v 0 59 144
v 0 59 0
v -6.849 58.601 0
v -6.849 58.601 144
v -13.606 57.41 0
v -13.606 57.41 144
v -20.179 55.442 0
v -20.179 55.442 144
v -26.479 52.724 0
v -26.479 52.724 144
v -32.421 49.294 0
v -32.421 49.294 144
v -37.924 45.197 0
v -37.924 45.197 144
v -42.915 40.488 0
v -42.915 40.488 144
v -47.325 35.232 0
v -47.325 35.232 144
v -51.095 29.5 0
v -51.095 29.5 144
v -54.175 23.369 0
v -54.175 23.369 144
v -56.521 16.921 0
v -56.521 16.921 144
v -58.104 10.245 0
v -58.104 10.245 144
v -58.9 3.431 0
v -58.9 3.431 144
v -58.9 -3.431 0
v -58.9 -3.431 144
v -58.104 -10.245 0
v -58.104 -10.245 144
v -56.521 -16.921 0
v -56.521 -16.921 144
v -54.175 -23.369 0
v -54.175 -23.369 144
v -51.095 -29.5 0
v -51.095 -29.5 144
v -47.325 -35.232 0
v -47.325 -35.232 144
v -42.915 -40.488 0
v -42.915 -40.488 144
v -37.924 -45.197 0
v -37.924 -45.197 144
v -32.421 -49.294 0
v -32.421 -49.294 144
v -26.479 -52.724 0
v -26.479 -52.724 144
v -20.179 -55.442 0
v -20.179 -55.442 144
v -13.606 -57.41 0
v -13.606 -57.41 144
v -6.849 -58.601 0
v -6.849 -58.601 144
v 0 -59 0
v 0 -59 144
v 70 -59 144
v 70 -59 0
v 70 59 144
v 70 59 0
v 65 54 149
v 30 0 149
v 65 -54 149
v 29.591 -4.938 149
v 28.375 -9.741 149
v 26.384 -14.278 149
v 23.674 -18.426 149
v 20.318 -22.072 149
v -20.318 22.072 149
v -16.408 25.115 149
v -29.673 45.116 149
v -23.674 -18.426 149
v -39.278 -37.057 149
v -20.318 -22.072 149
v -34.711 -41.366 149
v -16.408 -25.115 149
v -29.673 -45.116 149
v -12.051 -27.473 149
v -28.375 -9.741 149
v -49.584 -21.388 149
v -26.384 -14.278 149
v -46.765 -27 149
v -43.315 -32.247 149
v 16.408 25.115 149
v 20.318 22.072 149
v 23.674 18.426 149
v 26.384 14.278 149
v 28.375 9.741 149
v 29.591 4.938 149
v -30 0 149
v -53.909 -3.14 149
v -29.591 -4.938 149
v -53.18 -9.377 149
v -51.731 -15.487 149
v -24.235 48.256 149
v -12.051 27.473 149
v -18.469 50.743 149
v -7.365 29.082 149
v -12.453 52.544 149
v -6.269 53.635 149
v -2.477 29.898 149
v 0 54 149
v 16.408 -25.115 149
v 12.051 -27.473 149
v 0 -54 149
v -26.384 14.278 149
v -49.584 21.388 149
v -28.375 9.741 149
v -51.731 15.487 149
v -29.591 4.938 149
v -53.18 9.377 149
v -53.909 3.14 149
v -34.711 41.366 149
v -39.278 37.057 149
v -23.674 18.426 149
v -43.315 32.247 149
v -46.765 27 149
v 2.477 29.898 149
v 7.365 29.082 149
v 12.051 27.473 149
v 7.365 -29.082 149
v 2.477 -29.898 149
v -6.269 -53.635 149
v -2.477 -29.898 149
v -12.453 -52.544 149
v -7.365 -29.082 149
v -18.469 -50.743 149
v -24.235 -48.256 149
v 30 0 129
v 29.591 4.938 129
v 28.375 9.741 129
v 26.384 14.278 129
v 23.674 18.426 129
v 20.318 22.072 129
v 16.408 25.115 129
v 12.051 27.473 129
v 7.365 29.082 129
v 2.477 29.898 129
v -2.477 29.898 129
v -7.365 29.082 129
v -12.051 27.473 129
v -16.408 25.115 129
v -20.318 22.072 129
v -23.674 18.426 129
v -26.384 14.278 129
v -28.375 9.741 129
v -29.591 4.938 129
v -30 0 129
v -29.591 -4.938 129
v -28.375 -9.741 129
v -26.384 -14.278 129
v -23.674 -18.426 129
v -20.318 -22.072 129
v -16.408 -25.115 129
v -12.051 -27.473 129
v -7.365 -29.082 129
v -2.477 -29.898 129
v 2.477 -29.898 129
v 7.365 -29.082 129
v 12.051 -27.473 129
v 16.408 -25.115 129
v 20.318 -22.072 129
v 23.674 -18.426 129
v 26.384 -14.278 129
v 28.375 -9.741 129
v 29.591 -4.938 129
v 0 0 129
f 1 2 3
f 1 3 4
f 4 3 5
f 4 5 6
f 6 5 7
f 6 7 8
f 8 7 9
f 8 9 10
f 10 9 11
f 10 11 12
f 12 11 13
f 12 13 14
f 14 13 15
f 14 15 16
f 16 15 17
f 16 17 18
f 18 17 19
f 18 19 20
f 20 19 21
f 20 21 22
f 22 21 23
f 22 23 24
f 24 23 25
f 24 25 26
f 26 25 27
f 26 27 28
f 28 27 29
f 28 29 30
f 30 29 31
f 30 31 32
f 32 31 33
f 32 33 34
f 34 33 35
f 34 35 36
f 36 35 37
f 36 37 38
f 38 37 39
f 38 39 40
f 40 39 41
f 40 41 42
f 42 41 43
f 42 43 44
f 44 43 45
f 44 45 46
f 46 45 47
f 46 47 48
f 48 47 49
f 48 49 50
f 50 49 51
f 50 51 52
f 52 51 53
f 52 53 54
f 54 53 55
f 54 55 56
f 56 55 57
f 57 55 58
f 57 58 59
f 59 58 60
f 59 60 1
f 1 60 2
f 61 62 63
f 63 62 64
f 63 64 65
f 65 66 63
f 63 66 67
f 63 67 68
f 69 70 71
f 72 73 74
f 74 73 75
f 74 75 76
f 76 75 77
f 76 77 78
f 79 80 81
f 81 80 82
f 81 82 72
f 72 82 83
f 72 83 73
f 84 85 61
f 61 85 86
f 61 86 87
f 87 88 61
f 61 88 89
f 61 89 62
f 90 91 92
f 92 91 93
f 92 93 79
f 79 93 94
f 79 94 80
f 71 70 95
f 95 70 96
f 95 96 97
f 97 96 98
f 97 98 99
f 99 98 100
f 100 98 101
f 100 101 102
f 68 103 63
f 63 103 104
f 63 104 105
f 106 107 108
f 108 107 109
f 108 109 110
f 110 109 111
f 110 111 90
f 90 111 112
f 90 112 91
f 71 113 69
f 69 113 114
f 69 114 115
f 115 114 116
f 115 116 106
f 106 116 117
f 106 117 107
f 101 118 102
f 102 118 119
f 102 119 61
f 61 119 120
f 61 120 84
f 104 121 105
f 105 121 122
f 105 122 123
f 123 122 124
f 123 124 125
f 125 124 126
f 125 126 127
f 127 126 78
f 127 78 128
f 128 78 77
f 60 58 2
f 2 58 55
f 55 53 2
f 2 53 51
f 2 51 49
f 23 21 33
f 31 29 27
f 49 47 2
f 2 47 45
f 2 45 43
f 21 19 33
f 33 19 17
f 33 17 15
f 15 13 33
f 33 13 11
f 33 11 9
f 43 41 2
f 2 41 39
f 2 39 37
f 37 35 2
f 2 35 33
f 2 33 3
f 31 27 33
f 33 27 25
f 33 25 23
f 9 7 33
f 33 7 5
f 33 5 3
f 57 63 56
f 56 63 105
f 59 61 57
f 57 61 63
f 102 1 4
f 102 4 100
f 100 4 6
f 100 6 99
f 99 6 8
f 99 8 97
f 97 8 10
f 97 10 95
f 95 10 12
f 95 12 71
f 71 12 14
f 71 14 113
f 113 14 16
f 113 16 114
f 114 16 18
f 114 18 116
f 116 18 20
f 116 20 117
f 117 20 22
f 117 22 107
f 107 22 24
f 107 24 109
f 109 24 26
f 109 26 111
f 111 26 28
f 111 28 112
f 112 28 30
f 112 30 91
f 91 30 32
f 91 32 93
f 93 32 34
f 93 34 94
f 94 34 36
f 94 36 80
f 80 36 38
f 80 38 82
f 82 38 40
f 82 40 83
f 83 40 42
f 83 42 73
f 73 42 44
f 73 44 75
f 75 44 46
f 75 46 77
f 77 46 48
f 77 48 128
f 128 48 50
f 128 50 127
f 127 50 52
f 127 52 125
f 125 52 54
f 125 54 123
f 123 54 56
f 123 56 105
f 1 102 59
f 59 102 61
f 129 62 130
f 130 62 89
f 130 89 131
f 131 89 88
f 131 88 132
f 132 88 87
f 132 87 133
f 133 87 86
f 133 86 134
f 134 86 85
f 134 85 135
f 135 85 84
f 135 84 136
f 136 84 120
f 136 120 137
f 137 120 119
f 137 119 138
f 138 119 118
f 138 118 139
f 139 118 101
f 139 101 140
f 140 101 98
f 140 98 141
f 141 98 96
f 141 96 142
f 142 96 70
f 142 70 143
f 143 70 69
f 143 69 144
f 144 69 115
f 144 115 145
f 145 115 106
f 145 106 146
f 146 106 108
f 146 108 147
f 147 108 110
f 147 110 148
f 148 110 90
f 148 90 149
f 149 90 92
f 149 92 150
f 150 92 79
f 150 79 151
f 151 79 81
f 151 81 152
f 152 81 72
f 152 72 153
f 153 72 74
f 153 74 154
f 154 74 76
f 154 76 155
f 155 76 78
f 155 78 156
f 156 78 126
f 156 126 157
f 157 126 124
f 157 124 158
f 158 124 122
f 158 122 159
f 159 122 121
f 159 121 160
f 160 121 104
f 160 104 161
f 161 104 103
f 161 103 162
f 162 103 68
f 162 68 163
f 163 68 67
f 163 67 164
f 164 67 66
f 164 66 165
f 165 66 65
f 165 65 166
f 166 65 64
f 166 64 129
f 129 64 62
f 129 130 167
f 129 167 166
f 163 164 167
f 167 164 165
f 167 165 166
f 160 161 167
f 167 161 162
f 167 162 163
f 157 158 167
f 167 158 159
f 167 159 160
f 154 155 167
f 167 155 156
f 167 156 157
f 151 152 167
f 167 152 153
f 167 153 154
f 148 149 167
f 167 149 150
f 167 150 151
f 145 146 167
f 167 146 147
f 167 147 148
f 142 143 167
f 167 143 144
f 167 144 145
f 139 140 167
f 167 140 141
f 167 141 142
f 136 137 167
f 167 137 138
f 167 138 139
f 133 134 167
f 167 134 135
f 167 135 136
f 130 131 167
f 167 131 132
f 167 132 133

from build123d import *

# Parameters (mm, degrees)
SALIENTE_EXTRUIR1_DEPTH = 149
CHAFL_N1_SIZE           = 5
CROQUIS2_R              = 30
CORTAR_EXTRUIR1_DEPTH   = 20


with BuildPart() as part:
    # Croquis1 → Saliente-Extruir1 (new body)
    with BuildSketch(Plane.XY):
        with BuildLine():
            Line((0, 59), (70, 59))
            Line((70, 59), (70, -59))
            Line((70, -59), (0, -59))
            ThreePointArc((0, -59), (-59, 0), (0, 59))
        make_face()
    extrude(amount=SALIENTE_EXTRUIR1_DEPTH)

    # Chaflán1
    chafl_n1_edges = [part.edges().sort_by_distance(p)[0] for p in [
        (70, 0, 149),
        (35, 59, 149),
        (-59, 0, 149),
        (35, -59, 149),
    ]]
    chamfer(chafl_n1_edges, length=CHAFL_N1_SIZE)

    # Croquis2 → Cortar-Extruir1 (cut)
    with BuildSketch(Plane.XY.offset(149)):
        Circle(CROQUIS2_R)
    extrude(amount=-CORTAR_EXTRUIR1_DEPTH, mode=Mode.SUBTRACT)


solid = part.part
